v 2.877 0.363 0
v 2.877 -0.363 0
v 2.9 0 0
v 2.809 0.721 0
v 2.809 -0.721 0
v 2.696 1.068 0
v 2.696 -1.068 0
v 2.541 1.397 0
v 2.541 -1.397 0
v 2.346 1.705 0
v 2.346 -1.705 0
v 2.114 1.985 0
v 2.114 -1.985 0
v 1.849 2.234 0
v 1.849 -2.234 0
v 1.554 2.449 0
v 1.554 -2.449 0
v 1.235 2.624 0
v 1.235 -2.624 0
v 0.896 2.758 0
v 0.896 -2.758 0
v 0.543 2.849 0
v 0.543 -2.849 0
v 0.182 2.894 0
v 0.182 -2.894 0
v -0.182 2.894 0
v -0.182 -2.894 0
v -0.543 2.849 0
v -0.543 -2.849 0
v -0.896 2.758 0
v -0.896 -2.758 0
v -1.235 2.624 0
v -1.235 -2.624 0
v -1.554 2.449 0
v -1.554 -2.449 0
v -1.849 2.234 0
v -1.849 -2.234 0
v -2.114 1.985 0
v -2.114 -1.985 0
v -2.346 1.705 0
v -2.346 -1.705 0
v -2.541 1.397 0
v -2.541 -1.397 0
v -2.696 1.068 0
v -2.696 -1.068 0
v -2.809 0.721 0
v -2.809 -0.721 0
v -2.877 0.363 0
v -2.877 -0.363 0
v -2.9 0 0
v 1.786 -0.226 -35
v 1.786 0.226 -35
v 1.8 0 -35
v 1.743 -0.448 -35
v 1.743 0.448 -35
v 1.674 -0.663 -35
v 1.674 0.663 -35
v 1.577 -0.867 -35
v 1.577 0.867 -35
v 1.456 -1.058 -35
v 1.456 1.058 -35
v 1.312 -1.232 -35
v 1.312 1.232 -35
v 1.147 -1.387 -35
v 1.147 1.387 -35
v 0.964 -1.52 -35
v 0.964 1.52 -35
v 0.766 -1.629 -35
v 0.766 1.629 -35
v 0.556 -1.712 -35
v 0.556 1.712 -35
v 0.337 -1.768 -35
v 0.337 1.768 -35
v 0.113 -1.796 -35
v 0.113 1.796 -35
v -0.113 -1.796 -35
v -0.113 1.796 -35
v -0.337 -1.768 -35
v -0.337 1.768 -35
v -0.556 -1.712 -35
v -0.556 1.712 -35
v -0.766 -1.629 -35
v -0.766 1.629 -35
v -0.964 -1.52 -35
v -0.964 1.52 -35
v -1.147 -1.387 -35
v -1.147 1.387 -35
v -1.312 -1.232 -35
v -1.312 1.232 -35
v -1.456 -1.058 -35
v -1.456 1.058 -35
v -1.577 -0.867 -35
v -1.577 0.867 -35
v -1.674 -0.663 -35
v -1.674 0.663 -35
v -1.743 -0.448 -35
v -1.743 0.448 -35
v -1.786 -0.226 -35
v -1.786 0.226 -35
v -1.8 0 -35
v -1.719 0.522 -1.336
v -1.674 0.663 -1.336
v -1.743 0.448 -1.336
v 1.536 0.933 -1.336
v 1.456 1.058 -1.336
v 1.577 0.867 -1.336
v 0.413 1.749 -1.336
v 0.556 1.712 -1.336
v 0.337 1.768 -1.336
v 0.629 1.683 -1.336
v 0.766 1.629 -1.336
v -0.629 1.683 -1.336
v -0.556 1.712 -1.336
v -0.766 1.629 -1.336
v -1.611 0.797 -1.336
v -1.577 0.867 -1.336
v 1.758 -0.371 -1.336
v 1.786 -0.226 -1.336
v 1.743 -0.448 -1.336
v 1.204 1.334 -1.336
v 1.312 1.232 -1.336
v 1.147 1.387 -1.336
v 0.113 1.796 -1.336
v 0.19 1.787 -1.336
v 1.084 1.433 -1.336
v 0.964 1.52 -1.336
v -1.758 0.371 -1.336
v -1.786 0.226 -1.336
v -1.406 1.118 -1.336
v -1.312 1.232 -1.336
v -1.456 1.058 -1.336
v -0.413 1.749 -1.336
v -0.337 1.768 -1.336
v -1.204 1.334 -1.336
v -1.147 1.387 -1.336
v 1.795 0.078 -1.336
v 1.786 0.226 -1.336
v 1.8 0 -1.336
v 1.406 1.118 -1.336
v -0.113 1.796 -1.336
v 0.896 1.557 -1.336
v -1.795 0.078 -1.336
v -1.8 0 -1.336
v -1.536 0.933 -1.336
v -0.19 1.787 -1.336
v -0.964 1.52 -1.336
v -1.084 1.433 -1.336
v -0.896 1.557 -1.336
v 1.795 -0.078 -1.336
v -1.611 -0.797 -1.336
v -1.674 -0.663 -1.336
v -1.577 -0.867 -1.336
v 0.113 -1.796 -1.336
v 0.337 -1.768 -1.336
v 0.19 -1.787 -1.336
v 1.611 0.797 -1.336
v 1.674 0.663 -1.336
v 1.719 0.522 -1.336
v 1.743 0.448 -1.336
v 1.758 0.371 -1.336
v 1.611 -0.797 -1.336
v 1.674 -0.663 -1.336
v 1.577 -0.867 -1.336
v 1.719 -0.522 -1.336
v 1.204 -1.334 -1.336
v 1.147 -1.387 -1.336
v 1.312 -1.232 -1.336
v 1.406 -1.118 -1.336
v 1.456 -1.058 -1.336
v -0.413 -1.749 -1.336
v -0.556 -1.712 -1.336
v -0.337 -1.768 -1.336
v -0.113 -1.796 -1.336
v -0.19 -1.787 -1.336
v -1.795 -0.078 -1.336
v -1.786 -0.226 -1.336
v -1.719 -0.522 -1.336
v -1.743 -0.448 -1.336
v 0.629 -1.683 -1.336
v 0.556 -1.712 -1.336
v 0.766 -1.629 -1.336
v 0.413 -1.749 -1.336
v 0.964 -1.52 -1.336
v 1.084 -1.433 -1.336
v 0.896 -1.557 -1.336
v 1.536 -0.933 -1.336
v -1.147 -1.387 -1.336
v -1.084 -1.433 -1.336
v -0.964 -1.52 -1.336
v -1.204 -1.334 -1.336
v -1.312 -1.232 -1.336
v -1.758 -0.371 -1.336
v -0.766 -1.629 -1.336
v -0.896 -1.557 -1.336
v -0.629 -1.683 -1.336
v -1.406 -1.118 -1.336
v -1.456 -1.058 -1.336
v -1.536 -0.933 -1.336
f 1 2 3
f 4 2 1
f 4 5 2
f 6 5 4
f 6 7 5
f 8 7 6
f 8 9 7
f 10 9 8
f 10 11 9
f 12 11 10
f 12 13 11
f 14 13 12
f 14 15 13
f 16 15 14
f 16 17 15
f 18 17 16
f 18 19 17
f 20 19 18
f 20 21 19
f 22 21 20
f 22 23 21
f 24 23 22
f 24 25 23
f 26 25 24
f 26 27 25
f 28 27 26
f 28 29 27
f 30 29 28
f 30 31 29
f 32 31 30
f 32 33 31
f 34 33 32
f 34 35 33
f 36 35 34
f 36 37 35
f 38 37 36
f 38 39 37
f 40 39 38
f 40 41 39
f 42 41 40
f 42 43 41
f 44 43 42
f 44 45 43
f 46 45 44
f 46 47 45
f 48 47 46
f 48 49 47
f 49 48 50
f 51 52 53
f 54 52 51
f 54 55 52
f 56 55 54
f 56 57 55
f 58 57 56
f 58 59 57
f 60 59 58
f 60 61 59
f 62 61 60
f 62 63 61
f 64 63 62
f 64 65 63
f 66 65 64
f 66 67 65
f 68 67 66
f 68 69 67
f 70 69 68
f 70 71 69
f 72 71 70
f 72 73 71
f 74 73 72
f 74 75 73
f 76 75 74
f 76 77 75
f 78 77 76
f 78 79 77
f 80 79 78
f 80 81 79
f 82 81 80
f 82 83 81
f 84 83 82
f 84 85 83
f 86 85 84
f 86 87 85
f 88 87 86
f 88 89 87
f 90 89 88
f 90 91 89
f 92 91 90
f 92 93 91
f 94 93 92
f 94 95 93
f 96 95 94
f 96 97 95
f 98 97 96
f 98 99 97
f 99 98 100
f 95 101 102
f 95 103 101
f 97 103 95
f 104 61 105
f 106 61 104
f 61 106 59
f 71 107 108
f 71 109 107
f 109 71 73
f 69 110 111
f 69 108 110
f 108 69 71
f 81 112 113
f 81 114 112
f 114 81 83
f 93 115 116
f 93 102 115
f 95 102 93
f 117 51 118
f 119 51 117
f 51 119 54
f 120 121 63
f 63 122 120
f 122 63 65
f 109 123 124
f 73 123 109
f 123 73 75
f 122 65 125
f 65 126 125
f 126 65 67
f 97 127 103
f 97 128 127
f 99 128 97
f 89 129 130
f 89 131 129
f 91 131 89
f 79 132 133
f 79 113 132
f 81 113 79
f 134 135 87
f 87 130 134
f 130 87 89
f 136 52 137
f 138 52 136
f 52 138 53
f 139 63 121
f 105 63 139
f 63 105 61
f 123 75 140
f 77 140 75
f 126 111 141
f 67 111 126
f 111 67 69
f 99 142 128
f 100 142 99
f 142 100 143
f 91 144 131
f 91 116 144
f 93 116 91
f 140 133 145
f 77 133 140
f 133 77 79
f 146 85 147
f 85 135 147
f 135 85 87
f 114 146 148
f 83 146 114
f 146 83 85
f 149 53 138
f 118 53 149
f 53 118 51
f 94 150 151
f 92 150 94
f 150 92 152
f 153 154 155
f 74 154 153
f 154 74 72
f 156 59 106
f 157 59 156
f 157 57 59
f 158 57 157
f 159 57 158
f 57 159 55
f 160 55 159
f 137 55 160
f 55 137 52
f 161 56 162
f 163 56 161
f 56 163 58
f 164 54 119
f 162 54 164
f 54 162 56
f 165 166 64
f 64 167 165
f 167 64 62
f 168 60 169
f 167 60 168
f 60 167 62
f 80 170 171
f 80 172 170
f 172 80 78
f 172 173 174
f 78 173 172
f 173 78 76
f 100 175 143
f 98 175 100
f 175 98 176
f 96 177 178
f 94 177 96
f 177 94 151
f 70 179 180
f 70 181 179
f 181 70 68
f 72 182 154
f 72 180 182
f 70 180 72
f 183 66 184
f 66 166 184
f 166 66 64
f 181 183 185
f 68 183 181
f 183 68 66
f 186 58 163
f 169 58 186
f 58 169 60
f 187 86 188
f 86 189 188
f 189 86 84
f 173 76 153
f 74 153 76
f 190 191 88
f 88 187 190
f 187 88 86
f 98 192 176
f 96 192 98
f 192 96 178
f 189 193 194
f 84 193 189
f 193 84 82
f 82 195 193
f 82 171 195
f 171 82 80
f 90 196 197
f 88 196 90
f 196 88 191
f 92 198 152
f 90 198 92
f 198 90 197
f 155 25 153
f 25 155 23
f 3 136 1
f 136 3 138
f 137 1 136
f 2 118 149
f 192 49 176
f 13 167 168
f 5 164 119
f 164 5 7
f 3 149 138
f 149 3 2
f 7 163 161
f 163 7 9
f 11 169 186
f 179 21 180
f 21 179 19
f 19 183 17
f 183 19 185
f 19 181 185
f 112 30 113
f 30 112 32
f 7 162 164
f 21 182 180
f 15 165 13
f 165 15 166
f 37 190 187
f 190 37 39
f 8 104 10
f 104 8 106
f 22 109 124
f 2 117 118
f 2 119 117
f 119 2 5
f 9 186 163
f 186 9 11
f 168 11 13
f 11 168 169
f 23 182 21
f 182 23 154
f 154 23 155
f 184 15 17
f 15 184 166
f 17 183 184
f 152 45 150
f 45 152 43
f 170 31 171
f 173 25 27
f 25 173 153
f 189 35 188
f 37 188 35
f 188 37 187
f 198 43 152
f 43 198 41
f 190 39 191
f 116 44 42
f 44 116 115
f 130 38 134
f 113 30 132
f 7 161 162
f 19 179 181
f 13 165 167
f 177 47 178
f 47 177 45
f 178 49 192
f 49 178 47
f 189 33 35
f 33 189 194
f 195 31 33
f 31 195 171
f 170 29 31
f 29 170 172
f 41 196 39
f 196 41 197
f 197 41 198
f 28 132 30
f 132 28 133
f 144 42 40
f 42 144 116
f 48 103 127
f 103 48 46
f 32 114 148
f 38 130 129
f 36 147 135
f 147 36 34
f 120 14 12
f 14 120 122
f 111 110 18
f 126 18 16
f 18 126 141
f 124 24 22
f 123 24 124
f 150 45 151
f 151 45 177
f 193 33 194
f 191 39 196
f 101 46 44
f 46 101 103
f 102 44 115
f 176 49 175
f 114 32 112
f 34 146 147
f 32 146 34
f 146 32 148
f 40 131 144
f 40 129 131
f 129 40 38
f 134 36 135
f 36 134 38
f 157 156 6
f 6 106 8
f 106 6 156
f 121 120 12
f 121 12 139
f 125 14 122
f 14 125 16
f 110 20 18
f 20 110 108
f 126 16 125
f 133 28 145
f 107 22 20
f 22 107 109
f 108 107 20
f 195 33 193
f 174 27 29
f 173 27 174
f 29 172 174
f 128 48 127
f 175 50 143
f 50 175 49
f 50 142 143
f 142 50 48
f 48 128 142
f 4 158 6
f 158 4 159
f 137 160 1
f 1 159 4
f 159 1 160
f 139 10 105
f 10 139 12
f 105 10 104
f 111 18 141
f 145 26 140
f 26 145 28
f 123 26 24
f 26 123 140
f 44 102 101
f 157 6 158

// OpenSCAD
$fn = 50;


difference() {
	union() {
		translate(v = [0, 0, 0]) {
			rotate(a = [0, 0, 0]) {
				difference() {
					union() {
						translate(v = [0, 0, -35.0000000000]) {
							cylinder(h = 35, r = 1.5000000000);
						}
						translate(v = [0, 0, -35.0000000000]) {
							cylinder(h = 35, r = 1.8000000000);
						}
						translate(v = [0, 0, -1.7000000000]) {
							cylinder(h = 1.7000000000, r1 = 1.5000000000, r2 = 2.9000000000);
						}
						translate(v = [0, 0, -35.0000000000]) {
							cylinder(h = 35, r = 1.5000000000);
						}
					}
					union();
				}
			}
		}
	}
	union();
}
